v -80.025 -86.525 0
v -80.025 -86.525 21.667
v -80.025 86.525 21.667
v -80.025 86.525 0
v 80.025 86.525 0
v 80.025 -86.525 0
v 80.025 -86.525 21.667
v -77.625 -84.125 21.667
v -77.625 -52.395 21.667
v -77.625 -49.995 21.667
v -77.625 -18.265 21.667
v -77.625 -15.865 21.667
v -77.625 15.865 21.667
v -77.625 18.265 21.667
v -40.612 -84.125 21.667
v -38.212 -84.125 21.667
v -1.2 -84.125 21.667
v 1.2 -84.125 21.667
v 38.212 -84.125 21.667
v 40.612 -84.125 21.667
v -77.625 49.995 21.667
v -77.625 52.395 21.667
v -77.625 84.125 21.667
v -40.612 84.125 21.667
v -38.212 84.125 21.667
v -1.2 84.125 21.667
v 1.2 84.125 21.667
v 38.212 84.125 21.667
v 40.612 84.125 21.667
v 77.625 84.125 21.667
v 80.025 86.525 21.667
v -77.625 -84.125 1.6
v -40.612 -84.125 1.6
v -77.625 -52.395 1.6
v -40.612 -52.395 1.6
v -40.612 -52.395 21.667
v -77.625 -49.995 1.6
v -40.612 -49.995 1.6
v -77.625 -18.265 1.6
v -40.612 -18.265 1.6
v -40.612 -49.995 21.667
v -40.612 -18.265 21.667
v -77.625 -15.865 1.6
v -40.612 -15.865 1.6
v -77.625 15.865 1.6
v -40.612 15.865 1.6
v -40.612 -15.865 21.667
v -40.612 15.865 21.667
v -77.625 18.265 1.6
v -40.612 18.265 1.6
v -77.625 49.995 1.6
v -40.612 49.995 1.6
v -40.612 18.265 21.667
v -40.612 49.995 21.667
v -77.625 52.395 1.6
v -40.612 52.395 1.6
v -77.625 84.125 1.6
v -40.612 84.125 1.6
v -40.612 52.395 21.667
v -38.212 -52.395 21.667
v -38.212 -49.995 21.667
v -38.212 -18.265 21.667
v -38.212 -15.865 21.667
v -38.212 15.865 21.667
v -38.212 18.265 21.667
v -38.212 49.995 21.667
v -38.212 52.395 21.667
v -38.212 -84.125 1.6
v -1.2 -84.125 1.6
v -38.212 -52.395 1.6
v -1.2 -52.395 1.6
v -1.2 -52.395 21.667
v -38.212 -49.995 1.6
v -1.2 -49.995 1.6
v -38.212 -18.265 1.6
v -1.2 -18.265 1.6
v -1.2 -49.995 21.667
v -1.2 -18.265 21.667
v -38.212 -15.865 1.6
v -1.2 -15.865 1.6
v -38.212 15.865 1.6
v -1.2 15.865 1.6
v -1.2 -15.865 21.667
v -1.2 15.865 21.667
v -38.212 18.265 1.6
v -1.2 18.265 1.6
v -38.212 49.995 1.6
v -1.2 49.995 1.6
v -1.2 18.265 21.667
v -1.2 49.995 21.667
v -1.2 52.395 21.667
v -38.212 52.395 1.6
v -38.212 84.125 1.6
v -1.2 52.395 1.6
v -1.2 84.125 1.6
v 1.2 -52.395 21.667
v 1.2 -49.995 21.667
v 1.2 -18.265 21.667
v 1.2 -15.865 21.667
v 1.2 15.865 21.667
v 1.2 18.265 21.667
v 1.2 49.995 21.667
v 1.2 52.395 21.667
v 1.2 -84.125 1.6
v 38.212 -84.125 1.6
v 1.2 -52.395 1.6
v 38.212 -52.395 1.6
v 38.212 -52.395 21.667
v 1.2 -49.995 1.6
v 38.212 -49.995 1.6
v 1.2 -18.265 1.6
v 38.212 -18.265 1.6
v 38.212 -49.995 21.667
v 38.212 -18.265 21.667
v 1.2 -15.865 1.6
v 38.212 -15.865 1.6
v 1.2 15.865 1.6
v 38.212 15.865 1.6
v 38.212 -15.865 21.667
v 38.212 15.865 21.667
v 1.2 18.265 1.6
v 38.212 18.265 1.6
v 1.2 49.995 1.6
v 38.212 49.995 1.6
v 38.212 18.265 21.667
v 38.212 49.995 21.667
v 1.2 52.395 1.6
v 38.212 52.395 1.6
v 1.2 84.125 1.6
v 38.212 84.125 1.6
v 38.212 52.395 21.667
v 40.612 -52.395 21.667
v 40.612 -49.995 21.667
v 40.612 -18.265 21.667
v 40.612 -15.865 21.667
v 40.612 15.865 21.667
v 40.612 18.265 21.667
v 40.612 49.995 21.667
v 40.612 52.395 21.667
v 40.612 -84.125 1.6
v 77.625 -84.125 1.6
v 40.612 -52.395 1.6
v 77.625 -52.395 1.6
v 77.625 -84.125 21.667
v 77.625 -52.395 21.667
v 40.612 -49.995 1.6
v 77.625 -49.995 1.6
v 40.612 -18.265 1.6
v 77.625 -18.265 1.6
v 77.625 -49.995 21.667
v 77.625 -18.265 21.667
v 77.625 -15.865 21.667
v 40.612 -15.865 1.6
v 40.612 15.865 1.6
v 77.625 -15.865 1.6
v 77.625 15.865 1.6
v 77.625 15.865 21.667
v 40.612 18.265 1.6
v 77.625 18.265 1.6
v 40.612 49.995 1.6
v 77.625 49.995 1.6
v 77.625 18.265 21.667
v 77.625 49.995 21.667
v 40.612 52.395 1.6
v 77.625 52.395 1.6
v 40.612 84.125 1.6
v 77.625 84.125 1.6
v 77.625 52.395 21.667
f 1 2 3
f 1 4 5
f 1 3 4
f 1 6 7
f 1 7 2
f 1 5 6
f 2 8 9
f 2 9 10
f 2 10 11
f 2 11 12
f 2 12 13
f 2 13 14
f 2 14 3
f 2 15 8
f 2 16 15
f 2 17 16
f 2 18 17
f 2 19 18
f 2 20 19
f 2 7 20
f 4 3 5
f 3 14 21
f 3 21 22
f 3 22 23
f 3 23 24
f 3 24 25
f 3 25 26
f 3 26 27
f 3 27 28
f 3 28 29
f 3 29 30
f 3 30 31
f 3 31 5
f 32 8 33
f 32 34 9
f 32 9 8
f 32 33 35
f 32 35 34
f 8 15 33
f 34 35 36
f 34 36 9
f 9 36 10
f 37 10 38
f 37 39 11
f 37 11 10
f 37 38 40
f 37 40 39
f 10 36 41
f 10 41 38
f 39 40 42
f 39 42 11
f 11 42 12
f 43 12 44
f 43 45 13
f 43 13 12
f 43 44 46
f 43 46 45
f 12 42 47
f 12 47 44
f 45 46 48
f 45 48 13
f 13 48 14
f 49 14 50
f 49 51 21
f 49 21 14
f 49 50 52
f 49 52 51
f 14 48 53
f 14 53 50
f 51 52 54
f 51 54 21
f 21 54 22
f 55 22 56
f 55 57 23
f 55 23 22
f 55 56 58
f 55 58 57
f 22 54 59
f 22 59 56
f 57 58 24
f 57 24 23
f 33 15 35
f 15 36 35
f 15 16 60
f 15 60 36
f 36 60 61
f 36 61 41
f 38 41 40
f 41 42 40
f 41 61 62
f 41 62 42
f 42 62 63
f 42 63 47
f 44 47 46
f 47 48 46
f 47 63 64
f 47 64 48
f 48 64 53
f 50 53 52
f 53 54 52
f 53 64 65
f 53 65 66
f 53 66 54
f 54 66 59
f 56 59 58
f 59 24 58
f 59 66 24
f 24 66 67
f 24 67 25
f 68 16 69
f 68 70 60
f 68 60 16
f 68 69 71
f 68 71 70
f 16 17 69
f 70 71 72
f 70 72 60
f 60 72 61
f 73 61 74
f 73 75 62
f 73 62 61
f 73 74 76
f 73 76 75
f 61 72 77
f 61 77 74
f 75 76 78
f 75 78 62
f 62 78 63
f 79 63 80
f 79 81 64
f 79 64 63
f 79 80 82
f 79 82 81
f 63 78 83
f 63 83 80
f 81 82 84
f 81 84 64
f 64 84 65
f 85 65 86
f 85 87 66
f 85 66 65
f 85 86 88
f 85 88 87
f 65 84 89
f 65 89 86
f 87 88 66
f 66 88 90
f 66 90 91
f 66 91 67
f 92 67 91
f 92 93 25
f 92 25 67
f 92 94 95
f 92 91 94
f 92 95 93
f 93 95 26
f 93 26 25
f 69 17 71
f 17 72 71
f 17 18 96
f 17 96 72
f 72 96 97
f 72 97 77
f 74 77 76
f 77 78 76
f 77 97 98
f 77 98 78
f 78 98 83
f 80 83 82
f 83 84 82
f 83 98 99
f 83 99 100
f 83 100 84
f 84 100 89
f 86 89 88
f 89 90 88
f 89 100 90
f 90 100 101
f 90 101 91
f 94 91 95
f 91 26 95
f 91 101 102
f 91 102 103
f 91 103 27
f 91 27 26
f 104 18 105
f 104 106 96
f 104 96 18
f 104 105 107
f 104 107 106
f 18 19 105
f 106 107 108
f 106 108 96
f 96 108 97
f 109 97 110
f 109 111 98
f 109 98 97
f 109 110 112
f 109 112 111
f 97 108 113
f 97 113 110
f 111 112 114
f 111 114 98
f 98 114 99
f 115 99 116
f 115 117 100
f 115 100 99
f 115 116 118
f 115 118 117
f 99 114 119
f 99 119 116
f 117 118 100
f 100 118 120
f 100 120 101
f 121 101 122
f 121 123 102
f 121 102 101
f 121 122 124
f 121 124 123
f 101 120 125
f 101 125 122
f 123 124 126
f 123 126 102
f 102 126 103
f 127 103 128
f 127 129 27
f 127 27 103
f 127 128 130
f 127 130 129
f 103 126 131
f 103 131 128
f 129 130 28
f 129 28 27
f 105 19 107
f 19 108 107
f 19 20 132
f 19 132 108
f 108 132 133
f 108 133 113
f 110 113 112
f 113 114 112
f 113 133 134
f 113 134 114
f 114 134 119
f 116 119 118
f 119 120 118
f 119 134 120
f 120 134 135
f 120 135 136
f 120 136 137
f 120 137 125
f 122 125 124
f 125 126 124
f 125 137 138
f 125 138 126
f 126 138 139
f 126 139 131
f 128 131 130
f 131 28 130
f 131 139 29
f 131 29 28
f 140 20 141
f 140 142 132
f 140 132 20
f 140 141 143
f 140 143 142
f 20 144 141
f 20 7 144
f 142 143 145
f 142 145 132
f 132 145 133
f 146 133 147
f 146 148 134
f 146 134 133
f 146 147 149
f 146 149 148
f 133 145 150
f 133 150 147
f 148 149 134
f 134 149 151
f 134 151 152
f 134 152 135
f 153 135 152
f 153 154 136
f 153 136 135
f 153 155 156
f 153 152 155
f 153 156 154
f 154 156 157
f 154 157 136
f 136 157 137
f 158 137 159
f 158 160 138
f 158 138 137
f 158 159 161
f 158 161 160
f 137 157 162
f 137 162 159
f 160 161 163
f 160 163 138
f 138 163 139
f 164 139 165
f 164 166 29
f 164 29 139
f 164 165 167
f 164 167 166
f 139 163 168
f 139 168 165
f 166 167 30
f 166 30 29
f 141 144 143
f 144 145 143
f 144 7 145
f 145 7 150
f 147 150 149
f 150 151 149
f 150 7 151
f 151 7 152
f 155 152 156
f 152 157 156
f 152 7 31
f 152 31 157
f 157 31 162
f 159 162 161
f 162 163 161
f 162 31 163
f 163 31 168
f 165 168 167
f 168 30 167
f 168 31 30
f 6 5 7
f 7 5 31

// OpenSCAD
// Start: lazy_union
default_5_default_5();
// End: lazy_union

// Modules.

// 'PartMaterial undef-default - default 5.0'
module default_5_default_5() {
  // 'None : _combine_solids_and_holes'
  union() {
    // '_combine_solids_and_holes'
    difference() {
      // 'B4x5 : _combine_solids_and_holes'
      union() {
        // 'box'
        multmatrix(m=[[1.0, 0.0, 0.0, -80.025], [0.0, 1.0, 0.0, -86.525], [0.0, 0.0, 1.0, 0.0], [0.0, 0.0, 0.0, 1.0]]) {
          // 'box : _combine_solids_and_holes'
          union() {
            // 'box'
            cube(size=[160.05, 173.05, 21.666666666666668]);
          }
        }
      }
      // 'B4x5'
      multmatrix(m=[[1.0, 0.0, 0.0, -77.625], [0.0, 1.0, 0.0, 52.394999999999996], [0.0, 0.0, 1.0, 1.6], [0.0, 0.0, 0.0, 1.0]]) {
        // "('hole', 0, 0) : _combine_solids_and_holes"
        union() {
          // ('hole', 0, 0)
          cube(size=[37.0125, 31.730000000000004, 20.076666666666668]);
        }
      }
      // 'B4x5'
      multmatrix(m=[[1.0, 0.0, 0.0, -77.625], [0.0, 1.0, 0.0, 18.265], [0.0, 0.0, 1.0, 1.6], [0.0, 0.0, 0.0, 1.0]]) {
        // "('hole', 0, 1) : _combine_solids_and_holes"
        union() {
          // ('hole', 0, 1)
          cube(size=[37.0125, 31.730000000000004, 20.076666666666668]);
        }
      }
      // 'B4x5'
      multmatrix(m=[[1.0, 0.0, 0.0, -77.625], [0.0, 1.0, 0.0, -15.865000000000009], [0.0, 0.0, 1.0, 1.6], [0.0, 0.0, 0.0, 1.0]]) {
        // "('hole', 0, 2) : _combine_solids_and_holes"
        union() {
          // ('hole', 0, 2)
          cube(size=[37.0125, 31.730000000000004, 20.076666666666668]);
        }
      }
      // 'B4x5'
      multmatrix(m=[[1.0, 0.0, 0.0, -77.625], [0.0, 1.0, 0.0, -49.99500000000002], [0.0, 0.0, 1.0, 1.6], [0.0, 0.0, 0.0, 1.0]]) {
        // "('hole', 0, 3) : _combine_solids_and_holes"
        union() {
          // ('hole', 0, 3)
          cube(size=[37.0125, 31.730000000000004, 20.076666666666668]);
        }
      }
      // 'B4x5'
      multmatrix(m=[[1.0, 0.0, 0.0, -77.625], [0.0, 1.0, 0.0, -84.12500000000001], [0.0, 0.0, 1.0, 1.6], [0.0, 0.0, 0.0, 1.0]]) {
        // "('hole', 0, 4) : _combine_solids_and_holes"
        union() {
          // ('hole', 0, 4)
          cube(size=[37.0125, 31.730000000000004, 20.076666666666668]);
        }
      }
      // 'B4x5'
      multmatrix(m=[[1.0, 0.0, 0.0, -38.212500000000006], [0.0, 1.0, 0.0, 52.394999999999996], [0.0, 0.0, 1.0, 1.6], [0.0, 0.0, 0.0, 1.0]]) {
        // "('hole', 1, 0) : _combine_solids_and_holes"
        union() {
          // ('hole', 1, 0)
          cube(size=[37.0125, 31.730000000000004, 20.076666666666668]);
        }
      }
      // 'B4x5'
      multmatrix(m=[[1.0, 0.0, 0.0, -38.212500000000006], [0.0, 1.0, 0.0, 18.265], [0.0, 0.0, 1.0, 1.6], [0.0, 0.0, 0.0, 1.0]]) {
        // "('hole', 1, 1) : _combine_solids_and_holes"
        union() {
          // ('hole', 1, 1)
          cube(size=[37.0125, 31.730000000000004, 20.076666666666668]);
        }
      }
      // 'B4x5'
      multmatrix(m=[[1.0, 0.0, 0.0, -38.212500000000006], [0.0, 1.0, 0.0, -15.865000000000009], [0.0, 0.0, 1.0, 1.6], [0.0, 0.0, 0.0, 1.0]]) {
        // "('hole', 1, 2) : _combine_solids_and_holes"
        union() {
          // ('hole', 1, 2)
          cube(size=[37.0125, 31.730000000000004, 20.076666666666668]);
        }
      }
      // 'B4x5'
      multmatrix(m=[[1.0, 0.0, 0.0, -38.212500000000006], [0.0, 1.0, 0.0, -49.99500000000002], [0.0, 0.0, 1.0, 1.6], [0.0, 0.0, 0.0, 1.0]]) {
        // "('hole', 1, 3) : _combine_solids_and_holes"
        union() {
          // ('hole', 1, 3)
          cube(size=[37.0125, 31.730000000000004, 20.076666666666668]);
        }
      }
      // 'B4x5'
      multmatrix(m=[[1.0, 0.0, 0.0, -38.212500000000006], [0.0, 1.0, 0.0, -84.12500000000001], [0.0, 0.0, 1.0, 1.6], [0.0, 0.0, 0.0, 1.0]]) {
        // "('hole', 1, 4) : _combine_solids_and_holes"
        union() {
          // ('hole', 1, 4)
          cube(size=[37.0125, 31.730000000000004, 20.076666666666668]);
        }
      }
      // 'B4x5'
      multmatrix(m=[[1.0, 0.0, 0.0, 1.2000000000000028], [0.0, 1.0, 0.0, 52.394999999999996], [0.0, 0.0, 1.0, 1.6], [0.0, 0.0, 0.0, 1.0]]) {
        // "('hole', 2, 0) : _combine_solids_and_holes"
        union() {
          // ('hole', 2, 0)
          cube(size=[37.0125, 31.730000000000004, 20.076666666666668]);
        }
      }
      // 'B4x5'
      multmatrix(m=[[1.0, 0.0, 0.0, 1.2000000000000028], [0.0, 1.0, 0.0, 18.265], [0.0, 0.0, 1.0, 1.6], [0.0, 0.0, 0.0, 1.0]]) {
        // "('hole', 2, 1) : _combine_solids_and_holes"
        union() {
          // ('hole', 2, 1)
          cube(size=[37.0125, 31.730000000000004, 20.076666666666668]);
        }
      }
      // 'B4x5'
      multmatrix(m=[[1.0, 0.0, 0.0, 1.2000000000000028], [0.0, 1.0, 0.0, -15.865000000000009], [0.0, 0.0, 1.0, 1.6], [0.0, 0.0, 0.0, 1.0]]) {
        // "('hole', 2, 2) : _combine_solids_and_holes"
        union() {
          // ('hole', 2, 2)
          cube(size=[37.0125, 31.730000000000004, 20.076666666666668]);
        }
      }
      // 'B4x5'
      multmatrix(m=[[1.0, 0.0, 0.0, 1.2000000000000028], [0.0, 1.0, 0.0, -49.99500000000002], [0.0, 0.0, 1.0, 1.6], [0.0, 0.0, 0.0, 1.0]]) {
        // "('hole', 2, 3) : _combine_solids_and_holes"
        union() {
          // ('hole', 2, 3)
          cube(size=[37.0125, 31.730000000000004, 20.076666666666668]);
        }
      }
      // 'B4x5'
      multmatrix(m=[[1.0, 0.0, 0.0, 1.2000000000000028], [0.0, 1.0, 0.0, -84.12500000000001], [0.0, 0.0, 1.0, 1.6], [0.0, 0.0, 0.0, 1.0]]) {
        // "('hole', 2, 4) : _combine_solids_and_holes"
        union() {
          // ('hole', 2, 4)
          cube(size=[37.0125, 31.730000000000004, 20.076666666666668]);
        }
      }
      // 'B4x5'
      multmatrix(m=[[1.0, 0.0, 0.0, 40.61250000000001], [0.0, 1.0, 0.0, 52.394999999999996], [0.0, 0.0, 1.0, 1.6], [0.0, 0.0, 0.0, 1.0]]) {
        // "('hole', 3, 0) : _combine_solids_and_holes"
        union() {
          // ('hole', 3, 0)
          cube(size=[37.0125, 31.730000000000004, 20.076666666666668]);
        }
      }
      // 'B4x5'
      multmatrix(m=[[1.0, 0.0, 0.0, 40.61250000000001], [0.0, 1.0, 0.0, 18.265], [0.0, 0.0, 1.0, 1.6], [0.0, 0.0, 0.0, 1.0]]) {
        // "('hole', 3, 1) : _combine_solids_and_holes"
        union() {
          // ('hole', 3, 1)
          cube(size=[37.0125, 31.730000000000004, 20.076666666666668]);
        }
      }
      // 'B4x5'
      multmatrix(m=[[1.0, 0.0, 0.0, 40.61250000000001], [0.0, 1.0, 0.0, -15.865000000000009], [0.0, 0.0, 1.0, 1.6], [0.0, 0.0, 0.0, 1.0]]) {
        // "('hole', 3, 2) : _combine_solids_and_holes"
        union() {
          // ('hole', 3, 2)
          cube(size=[37.0125, 31.730000000000004, 20.076666666666668]);
        }
      }
      // 'B4x5'
      multmatrix(m=[[1.0, 0.0, 0.0, 40.61250000000001], [0.0, 1.0, 0.0, -49.99500000000002], [0.0, 0.0, 1.0, 1.6], [0.0, 0.0, 0.0, 1.0]]) {
        // "('hole', 3, 3) : _combine_solids_and_holes"
        union() {
          // ('hole', 3, 3)
          cube(size=[37.0125, 31.730000000000004, 20.076666666666668]);
        }
      }
      // 'B4x5'
      multmatrix(m=[[1.0, 0.0, 0.0, 40.61250000000001], [0.0, 1.0, 0.0, -84.12500000000001], [0.0, 0.0, 1.0, 1.6], [0.0, 0.0, 0.0, 1.0]]) {
        // "('hole', 3, 4) : _combine_solids_and_holes"
        union() {
          // ('hole', 3, 4)
          cube(size=[37.0125, 31.730000000000004, 20.076666666666668]);
        }
      }
    }
  }
} // end module default_5_default_5
